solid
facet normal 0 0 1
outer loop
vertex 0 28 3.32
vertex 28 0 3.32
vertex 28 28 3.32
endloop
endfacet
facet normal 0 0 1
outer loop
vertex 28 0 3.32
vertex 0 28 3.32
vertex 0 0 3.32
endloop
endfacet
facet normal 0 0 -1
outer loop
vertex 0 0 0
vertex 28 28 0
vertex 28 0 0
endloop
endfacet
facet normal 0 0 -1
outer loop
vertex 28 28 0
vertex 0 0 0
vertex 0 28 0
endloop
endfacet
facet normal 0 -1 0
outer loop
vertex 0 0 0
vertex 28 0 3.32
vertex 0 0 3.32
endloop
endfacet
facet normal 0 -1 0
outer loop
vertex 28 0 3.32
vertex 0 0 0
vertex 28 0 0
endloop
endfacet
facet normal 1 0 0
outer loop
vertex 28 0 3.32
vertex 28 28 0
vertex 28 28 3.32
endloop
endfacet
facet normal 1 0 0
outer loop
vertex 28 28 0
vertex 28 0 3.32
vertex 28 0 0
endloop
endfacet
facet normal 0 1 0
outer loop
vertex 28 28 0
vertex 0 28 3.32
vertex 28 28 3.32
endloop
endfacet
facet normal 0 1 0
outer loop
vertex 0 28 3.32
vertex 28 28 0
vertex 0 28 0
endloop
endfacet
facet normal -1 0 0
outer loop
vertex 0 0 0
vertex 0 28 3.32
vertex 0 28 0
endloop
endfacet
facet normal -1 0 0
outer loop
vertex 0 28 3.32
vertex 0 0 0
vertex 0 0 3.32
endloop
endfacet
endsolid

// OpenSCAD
/* Warning, this is a very basic generator with a lot of approximation 
input data : [PQFP, C3A, 28x28x3.32mm, 208, , A, C04-01092A]
generated by com.zoubworld.electronics.cad.model3d.Basic
Date : Sun Feb 15 10:50:49 CET 2026
*/

//body
color("black")
translate([0,0,0])
cube([28.0,28.0,3.32], center=false);
